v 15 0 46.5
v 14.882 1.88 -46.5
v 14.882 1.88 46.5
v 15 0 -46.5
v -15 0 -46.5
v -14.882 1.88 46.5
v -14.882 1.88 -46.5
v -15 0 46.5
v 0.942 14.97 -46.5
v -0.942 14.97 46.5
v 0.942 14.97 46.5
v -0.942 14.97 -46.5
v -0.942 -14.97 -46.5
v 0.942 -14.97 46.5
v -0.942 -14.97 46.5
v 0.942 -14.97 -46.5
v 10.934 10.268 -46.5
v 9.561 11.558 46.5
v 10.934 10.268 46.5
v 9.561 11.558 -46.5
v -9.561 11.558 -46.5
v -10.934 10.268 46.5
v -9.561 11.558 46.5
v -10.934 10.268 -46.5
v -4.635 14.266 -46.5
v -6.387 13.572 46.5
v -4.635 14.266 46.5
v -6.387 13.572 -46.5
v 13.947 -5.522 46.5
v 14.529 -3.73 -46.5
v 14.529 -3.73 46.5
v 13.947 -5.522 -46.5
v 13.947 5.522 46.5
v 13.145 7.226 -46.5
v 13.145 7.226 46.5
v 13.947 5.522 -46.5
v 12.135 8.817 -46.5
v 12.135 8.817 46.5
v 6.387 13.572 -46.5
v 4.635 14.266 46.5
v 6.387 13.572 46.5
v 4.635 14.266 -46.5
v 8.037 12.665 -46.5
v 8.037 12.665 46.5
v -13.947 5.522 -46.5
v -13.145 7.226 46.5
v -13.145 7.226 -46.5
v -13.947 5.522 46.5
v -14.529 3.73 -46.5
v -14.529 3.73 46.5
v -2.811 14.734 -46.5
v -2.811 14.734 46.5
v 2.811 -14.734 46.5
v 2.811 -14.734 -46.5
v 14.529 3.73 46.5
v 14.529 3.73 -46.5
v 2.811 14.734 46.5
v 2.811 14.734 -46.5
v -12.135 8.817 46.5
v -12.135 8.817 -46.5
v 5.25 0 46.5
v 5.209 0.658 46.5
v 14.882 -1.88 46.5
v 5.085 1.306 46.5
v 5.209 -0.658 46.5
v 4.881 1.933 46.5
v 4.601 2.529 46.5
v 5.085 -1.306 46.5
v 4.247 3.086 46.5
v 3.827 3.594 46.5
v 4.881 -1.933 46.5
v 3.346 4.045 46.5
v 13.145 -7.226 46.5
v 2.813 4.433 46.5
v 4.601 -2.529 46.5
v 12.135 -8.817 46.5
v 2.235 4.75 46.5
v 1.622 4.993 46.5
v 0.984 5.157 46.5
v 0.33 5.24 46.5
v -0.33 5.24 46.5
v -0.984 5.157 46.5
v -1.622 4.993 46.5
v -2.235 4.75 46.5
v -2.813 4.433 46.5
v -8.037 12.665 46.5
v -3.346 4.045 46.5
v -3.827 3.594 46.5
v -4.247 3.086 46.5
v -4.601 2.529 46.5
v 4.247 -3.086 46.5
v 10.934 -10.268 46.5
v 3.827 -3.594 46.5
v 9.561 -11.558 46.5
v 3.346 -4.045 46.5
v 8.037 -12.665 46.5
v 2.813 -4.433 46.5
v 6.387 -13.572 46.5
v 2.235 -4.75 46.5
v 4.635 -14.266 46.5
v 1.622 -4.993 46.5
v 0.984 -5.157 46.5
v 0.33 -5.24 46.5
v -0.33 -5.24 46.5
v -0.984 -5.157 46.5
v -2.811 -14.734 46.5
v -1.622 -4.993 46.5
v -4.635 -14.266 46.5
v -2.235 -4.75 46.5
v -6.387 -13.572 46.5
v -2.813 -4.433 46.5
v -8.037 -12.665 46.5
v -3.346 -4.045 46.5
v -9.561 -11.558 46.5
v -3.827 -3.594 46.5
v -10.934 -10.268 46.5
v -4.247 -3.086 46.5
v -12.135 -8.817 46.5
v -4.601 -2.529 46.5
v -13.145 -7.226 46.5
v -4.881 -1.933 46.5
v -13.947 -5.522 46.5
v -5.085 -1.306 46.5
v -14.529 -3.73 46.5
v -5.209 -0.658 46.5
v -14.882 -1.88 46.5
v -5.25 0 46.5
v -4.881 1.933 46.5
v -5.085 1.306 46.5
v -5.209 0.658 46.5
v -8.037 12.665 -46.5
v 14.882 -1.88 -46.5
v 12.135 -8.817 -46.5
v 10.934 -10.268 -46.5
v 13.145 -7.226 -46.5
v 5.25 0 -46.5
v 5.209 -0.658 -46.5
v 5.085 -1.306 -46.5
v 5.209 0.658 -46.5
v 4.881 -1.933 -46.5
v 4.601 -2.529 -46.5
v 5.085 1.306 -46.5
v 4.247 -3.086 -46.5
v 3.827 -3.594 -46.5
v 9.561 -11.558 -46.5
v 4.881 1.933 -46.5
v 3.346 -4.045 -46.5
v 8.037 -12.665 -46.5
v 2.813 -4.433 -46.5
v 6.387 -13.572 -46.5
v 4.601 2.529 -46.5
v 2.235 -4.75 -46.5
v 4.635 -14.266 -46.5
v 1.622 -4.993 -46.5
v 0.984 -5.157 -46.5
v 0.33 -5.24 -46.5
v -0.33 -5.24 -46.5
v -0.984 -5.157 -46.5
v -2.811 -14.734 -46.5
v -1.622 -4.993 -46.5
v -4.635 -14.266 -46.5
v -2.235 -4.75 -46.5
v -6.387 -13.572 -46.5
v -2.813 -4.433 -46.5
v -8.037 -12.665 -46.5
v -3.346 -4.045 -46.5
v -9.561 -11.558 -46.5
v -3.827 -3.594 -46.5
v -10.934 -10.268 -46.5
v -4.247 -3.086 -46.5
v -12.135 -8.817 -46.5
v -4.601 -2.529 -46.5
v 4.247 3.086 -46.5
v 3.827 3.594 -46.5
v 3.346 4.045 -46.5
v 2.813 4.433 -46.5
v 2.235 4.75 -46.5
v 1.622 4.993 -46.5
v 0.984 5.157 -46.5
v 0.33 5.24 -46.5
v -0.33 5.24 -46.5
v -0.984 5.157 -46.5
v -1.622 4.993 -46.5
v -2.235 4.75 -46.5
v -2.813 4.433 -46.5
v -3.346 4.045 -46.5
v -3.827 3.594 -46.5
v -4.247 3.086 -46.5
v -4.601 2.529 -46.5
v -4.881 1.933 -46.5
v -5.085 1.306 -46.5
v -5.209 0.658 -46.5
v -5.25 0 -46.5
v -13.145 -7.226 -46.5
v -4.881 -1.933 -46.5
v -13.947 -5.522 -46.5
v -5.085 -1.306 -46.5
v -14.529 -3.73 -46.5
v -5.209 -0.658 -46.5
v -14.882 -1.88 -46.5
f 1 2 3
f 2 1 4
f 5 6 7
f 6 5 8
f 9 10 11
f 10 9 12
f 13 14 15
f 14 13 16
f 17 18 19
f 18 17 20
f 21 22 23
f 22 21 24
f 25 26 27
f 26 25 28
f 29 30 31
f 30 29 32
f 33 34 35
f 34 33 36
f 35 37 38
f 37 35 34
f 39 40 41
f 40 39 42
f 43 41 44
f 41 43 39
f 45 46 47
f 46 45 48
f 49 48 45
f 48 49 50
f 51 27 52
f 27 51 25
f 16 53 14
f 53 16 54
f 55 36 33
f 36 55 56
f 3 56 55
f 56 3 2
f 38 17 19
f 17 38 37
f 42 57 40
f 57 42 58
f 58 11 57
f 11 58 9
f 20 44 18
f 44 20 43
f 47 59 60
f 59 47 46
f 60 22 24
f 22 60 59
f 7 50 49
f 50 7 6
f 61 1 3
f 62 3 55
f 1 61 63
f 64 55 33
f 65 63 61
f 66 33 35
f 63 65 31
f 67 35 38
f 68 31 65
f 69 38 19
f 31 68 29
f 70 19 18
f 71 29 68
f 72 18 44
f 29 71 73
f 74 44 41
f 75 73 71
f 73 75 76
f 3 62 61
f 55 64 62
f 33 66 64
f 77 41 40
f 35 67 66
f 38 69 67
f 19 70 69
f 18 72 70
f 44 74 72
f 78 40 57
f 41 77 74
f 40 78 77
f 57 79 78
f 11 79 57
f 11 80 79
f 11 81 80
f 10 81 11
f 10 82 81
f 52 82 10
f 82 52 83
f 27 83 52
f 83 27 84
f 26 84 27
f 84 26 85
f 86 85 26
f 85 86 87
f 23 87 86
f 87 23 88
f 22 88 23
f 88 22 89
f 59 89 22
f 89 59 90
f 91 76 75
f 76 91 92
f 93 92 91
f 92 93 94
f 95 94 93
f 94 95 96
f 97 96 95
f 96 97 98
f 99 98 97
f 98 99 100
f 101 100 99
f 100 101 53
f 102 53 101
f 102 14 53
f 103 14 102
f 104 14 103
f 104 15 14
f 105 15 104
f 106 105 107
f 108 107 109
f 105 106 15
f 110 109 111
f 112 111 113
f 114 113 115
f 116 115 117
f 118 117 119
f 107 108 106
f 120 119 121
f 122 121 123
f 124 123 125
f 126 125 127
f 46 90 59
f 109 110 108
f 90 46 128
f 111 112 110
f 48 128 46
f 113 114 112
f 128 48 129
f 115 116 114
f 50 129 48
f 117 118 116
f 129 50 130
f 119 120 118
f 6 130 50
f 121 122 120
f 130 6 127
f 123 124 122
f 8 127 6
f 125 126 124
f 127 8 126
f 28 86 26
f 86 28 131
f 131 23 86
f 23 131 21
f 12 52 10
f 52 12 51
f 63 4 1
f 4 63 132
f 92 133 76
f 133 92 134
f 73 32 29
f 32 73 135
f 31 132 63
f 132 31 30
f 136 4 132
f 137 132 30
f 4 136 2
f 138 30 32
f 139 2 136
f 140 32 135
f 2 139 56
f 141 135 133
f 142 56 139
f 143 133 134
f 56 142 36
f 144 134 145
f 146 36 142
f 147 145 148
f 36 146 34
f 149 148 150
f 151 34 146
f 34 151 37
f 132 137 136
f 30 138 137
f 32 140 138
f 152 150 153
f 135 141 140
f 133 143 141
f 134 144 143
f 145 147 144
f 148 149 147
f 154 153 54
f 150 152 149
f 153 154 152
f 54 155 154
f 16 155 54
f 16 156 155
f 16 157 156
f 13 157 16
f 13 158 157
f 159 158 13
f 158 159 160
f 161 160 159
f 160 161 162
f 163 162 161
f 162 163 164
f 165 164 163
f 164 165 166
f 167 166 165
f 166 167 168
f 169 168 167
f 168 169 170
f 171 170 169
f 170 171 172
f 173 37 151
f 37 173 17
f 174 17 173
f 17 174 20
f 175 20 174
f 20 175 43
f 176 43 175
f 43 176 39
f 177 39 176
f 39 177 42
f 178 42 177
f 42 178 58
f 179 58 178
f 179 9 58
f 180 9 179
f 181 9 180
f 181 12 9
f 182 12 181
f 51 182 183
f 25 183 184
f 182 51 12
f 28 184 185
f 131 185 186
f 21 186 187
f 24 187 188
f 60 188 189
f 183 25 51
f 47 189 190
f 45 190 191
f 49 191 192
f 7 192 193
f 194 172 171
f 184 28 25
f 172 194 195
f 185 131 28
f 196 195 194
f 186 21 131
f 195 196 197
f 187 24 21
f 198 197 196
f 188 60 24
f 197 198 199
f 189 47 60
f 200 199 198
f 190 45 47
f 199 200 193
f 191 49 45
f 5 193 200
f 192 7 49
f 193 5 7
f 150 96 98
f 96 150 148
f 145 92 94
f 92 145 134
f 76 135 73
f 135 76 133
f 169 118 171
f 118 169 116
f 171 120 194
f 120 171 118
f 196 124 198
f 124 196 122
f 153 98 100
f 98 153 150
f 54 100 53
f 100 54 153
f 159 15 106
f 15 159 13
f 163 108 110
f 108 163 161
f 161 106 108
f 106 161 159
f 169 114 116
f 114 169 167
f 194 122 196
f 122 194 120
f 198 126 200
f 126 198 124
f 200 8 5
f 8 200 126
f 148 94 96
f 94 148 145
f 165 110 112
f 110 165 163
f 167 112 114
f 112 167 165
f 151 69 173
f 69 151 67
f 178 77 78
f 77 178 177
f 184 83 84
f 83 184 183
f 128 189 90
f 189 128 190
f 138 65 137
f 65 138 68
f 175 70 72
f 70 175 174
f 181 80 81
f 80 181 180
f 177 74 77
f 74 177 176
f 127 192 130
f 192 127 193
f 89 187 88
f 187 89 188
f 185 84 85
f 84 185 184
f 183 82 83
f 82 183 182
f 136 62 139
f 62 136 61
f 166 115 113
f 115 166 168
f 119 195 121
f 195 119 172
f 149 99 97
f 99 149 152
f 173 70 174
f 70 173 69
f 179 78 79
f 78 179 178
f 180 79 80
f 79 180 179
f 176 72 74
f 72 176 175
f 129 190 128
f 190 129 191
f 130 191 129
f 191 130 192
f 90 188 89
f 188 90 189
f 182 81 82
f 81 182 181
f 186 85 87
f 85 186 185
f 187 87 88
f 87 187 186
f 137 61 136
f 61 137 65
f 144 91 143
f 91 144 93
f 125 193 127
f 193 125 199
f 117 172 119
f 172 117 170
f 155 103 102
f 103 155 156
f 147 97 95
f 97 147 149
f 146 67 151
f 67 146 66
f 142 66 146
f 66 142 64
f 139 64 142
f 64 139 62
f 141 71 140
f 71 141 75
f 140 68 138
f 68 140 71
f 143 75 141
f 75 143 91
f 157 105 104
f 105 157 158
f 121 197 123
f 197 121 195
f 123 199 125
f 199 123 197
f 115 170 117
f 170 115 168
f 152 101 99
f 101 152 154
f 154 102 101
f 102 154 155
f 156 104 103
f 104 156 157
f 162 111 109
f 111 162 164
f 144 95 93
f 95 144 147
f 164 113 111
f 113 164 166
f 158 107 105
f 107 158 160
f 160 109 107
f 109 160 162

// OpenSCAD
$fn = 50;


difference() {
	union() {
		translate(v = [0, 0, -46.5000000000]) {
			cylinder(h = 93, r = 15.0000000000);
		}
	}
	union() {
		translate(v = [0, 0, -100.0000000000]) {
			cylinder(h = 200, r = 5.2500000000);
		}
	}
}
